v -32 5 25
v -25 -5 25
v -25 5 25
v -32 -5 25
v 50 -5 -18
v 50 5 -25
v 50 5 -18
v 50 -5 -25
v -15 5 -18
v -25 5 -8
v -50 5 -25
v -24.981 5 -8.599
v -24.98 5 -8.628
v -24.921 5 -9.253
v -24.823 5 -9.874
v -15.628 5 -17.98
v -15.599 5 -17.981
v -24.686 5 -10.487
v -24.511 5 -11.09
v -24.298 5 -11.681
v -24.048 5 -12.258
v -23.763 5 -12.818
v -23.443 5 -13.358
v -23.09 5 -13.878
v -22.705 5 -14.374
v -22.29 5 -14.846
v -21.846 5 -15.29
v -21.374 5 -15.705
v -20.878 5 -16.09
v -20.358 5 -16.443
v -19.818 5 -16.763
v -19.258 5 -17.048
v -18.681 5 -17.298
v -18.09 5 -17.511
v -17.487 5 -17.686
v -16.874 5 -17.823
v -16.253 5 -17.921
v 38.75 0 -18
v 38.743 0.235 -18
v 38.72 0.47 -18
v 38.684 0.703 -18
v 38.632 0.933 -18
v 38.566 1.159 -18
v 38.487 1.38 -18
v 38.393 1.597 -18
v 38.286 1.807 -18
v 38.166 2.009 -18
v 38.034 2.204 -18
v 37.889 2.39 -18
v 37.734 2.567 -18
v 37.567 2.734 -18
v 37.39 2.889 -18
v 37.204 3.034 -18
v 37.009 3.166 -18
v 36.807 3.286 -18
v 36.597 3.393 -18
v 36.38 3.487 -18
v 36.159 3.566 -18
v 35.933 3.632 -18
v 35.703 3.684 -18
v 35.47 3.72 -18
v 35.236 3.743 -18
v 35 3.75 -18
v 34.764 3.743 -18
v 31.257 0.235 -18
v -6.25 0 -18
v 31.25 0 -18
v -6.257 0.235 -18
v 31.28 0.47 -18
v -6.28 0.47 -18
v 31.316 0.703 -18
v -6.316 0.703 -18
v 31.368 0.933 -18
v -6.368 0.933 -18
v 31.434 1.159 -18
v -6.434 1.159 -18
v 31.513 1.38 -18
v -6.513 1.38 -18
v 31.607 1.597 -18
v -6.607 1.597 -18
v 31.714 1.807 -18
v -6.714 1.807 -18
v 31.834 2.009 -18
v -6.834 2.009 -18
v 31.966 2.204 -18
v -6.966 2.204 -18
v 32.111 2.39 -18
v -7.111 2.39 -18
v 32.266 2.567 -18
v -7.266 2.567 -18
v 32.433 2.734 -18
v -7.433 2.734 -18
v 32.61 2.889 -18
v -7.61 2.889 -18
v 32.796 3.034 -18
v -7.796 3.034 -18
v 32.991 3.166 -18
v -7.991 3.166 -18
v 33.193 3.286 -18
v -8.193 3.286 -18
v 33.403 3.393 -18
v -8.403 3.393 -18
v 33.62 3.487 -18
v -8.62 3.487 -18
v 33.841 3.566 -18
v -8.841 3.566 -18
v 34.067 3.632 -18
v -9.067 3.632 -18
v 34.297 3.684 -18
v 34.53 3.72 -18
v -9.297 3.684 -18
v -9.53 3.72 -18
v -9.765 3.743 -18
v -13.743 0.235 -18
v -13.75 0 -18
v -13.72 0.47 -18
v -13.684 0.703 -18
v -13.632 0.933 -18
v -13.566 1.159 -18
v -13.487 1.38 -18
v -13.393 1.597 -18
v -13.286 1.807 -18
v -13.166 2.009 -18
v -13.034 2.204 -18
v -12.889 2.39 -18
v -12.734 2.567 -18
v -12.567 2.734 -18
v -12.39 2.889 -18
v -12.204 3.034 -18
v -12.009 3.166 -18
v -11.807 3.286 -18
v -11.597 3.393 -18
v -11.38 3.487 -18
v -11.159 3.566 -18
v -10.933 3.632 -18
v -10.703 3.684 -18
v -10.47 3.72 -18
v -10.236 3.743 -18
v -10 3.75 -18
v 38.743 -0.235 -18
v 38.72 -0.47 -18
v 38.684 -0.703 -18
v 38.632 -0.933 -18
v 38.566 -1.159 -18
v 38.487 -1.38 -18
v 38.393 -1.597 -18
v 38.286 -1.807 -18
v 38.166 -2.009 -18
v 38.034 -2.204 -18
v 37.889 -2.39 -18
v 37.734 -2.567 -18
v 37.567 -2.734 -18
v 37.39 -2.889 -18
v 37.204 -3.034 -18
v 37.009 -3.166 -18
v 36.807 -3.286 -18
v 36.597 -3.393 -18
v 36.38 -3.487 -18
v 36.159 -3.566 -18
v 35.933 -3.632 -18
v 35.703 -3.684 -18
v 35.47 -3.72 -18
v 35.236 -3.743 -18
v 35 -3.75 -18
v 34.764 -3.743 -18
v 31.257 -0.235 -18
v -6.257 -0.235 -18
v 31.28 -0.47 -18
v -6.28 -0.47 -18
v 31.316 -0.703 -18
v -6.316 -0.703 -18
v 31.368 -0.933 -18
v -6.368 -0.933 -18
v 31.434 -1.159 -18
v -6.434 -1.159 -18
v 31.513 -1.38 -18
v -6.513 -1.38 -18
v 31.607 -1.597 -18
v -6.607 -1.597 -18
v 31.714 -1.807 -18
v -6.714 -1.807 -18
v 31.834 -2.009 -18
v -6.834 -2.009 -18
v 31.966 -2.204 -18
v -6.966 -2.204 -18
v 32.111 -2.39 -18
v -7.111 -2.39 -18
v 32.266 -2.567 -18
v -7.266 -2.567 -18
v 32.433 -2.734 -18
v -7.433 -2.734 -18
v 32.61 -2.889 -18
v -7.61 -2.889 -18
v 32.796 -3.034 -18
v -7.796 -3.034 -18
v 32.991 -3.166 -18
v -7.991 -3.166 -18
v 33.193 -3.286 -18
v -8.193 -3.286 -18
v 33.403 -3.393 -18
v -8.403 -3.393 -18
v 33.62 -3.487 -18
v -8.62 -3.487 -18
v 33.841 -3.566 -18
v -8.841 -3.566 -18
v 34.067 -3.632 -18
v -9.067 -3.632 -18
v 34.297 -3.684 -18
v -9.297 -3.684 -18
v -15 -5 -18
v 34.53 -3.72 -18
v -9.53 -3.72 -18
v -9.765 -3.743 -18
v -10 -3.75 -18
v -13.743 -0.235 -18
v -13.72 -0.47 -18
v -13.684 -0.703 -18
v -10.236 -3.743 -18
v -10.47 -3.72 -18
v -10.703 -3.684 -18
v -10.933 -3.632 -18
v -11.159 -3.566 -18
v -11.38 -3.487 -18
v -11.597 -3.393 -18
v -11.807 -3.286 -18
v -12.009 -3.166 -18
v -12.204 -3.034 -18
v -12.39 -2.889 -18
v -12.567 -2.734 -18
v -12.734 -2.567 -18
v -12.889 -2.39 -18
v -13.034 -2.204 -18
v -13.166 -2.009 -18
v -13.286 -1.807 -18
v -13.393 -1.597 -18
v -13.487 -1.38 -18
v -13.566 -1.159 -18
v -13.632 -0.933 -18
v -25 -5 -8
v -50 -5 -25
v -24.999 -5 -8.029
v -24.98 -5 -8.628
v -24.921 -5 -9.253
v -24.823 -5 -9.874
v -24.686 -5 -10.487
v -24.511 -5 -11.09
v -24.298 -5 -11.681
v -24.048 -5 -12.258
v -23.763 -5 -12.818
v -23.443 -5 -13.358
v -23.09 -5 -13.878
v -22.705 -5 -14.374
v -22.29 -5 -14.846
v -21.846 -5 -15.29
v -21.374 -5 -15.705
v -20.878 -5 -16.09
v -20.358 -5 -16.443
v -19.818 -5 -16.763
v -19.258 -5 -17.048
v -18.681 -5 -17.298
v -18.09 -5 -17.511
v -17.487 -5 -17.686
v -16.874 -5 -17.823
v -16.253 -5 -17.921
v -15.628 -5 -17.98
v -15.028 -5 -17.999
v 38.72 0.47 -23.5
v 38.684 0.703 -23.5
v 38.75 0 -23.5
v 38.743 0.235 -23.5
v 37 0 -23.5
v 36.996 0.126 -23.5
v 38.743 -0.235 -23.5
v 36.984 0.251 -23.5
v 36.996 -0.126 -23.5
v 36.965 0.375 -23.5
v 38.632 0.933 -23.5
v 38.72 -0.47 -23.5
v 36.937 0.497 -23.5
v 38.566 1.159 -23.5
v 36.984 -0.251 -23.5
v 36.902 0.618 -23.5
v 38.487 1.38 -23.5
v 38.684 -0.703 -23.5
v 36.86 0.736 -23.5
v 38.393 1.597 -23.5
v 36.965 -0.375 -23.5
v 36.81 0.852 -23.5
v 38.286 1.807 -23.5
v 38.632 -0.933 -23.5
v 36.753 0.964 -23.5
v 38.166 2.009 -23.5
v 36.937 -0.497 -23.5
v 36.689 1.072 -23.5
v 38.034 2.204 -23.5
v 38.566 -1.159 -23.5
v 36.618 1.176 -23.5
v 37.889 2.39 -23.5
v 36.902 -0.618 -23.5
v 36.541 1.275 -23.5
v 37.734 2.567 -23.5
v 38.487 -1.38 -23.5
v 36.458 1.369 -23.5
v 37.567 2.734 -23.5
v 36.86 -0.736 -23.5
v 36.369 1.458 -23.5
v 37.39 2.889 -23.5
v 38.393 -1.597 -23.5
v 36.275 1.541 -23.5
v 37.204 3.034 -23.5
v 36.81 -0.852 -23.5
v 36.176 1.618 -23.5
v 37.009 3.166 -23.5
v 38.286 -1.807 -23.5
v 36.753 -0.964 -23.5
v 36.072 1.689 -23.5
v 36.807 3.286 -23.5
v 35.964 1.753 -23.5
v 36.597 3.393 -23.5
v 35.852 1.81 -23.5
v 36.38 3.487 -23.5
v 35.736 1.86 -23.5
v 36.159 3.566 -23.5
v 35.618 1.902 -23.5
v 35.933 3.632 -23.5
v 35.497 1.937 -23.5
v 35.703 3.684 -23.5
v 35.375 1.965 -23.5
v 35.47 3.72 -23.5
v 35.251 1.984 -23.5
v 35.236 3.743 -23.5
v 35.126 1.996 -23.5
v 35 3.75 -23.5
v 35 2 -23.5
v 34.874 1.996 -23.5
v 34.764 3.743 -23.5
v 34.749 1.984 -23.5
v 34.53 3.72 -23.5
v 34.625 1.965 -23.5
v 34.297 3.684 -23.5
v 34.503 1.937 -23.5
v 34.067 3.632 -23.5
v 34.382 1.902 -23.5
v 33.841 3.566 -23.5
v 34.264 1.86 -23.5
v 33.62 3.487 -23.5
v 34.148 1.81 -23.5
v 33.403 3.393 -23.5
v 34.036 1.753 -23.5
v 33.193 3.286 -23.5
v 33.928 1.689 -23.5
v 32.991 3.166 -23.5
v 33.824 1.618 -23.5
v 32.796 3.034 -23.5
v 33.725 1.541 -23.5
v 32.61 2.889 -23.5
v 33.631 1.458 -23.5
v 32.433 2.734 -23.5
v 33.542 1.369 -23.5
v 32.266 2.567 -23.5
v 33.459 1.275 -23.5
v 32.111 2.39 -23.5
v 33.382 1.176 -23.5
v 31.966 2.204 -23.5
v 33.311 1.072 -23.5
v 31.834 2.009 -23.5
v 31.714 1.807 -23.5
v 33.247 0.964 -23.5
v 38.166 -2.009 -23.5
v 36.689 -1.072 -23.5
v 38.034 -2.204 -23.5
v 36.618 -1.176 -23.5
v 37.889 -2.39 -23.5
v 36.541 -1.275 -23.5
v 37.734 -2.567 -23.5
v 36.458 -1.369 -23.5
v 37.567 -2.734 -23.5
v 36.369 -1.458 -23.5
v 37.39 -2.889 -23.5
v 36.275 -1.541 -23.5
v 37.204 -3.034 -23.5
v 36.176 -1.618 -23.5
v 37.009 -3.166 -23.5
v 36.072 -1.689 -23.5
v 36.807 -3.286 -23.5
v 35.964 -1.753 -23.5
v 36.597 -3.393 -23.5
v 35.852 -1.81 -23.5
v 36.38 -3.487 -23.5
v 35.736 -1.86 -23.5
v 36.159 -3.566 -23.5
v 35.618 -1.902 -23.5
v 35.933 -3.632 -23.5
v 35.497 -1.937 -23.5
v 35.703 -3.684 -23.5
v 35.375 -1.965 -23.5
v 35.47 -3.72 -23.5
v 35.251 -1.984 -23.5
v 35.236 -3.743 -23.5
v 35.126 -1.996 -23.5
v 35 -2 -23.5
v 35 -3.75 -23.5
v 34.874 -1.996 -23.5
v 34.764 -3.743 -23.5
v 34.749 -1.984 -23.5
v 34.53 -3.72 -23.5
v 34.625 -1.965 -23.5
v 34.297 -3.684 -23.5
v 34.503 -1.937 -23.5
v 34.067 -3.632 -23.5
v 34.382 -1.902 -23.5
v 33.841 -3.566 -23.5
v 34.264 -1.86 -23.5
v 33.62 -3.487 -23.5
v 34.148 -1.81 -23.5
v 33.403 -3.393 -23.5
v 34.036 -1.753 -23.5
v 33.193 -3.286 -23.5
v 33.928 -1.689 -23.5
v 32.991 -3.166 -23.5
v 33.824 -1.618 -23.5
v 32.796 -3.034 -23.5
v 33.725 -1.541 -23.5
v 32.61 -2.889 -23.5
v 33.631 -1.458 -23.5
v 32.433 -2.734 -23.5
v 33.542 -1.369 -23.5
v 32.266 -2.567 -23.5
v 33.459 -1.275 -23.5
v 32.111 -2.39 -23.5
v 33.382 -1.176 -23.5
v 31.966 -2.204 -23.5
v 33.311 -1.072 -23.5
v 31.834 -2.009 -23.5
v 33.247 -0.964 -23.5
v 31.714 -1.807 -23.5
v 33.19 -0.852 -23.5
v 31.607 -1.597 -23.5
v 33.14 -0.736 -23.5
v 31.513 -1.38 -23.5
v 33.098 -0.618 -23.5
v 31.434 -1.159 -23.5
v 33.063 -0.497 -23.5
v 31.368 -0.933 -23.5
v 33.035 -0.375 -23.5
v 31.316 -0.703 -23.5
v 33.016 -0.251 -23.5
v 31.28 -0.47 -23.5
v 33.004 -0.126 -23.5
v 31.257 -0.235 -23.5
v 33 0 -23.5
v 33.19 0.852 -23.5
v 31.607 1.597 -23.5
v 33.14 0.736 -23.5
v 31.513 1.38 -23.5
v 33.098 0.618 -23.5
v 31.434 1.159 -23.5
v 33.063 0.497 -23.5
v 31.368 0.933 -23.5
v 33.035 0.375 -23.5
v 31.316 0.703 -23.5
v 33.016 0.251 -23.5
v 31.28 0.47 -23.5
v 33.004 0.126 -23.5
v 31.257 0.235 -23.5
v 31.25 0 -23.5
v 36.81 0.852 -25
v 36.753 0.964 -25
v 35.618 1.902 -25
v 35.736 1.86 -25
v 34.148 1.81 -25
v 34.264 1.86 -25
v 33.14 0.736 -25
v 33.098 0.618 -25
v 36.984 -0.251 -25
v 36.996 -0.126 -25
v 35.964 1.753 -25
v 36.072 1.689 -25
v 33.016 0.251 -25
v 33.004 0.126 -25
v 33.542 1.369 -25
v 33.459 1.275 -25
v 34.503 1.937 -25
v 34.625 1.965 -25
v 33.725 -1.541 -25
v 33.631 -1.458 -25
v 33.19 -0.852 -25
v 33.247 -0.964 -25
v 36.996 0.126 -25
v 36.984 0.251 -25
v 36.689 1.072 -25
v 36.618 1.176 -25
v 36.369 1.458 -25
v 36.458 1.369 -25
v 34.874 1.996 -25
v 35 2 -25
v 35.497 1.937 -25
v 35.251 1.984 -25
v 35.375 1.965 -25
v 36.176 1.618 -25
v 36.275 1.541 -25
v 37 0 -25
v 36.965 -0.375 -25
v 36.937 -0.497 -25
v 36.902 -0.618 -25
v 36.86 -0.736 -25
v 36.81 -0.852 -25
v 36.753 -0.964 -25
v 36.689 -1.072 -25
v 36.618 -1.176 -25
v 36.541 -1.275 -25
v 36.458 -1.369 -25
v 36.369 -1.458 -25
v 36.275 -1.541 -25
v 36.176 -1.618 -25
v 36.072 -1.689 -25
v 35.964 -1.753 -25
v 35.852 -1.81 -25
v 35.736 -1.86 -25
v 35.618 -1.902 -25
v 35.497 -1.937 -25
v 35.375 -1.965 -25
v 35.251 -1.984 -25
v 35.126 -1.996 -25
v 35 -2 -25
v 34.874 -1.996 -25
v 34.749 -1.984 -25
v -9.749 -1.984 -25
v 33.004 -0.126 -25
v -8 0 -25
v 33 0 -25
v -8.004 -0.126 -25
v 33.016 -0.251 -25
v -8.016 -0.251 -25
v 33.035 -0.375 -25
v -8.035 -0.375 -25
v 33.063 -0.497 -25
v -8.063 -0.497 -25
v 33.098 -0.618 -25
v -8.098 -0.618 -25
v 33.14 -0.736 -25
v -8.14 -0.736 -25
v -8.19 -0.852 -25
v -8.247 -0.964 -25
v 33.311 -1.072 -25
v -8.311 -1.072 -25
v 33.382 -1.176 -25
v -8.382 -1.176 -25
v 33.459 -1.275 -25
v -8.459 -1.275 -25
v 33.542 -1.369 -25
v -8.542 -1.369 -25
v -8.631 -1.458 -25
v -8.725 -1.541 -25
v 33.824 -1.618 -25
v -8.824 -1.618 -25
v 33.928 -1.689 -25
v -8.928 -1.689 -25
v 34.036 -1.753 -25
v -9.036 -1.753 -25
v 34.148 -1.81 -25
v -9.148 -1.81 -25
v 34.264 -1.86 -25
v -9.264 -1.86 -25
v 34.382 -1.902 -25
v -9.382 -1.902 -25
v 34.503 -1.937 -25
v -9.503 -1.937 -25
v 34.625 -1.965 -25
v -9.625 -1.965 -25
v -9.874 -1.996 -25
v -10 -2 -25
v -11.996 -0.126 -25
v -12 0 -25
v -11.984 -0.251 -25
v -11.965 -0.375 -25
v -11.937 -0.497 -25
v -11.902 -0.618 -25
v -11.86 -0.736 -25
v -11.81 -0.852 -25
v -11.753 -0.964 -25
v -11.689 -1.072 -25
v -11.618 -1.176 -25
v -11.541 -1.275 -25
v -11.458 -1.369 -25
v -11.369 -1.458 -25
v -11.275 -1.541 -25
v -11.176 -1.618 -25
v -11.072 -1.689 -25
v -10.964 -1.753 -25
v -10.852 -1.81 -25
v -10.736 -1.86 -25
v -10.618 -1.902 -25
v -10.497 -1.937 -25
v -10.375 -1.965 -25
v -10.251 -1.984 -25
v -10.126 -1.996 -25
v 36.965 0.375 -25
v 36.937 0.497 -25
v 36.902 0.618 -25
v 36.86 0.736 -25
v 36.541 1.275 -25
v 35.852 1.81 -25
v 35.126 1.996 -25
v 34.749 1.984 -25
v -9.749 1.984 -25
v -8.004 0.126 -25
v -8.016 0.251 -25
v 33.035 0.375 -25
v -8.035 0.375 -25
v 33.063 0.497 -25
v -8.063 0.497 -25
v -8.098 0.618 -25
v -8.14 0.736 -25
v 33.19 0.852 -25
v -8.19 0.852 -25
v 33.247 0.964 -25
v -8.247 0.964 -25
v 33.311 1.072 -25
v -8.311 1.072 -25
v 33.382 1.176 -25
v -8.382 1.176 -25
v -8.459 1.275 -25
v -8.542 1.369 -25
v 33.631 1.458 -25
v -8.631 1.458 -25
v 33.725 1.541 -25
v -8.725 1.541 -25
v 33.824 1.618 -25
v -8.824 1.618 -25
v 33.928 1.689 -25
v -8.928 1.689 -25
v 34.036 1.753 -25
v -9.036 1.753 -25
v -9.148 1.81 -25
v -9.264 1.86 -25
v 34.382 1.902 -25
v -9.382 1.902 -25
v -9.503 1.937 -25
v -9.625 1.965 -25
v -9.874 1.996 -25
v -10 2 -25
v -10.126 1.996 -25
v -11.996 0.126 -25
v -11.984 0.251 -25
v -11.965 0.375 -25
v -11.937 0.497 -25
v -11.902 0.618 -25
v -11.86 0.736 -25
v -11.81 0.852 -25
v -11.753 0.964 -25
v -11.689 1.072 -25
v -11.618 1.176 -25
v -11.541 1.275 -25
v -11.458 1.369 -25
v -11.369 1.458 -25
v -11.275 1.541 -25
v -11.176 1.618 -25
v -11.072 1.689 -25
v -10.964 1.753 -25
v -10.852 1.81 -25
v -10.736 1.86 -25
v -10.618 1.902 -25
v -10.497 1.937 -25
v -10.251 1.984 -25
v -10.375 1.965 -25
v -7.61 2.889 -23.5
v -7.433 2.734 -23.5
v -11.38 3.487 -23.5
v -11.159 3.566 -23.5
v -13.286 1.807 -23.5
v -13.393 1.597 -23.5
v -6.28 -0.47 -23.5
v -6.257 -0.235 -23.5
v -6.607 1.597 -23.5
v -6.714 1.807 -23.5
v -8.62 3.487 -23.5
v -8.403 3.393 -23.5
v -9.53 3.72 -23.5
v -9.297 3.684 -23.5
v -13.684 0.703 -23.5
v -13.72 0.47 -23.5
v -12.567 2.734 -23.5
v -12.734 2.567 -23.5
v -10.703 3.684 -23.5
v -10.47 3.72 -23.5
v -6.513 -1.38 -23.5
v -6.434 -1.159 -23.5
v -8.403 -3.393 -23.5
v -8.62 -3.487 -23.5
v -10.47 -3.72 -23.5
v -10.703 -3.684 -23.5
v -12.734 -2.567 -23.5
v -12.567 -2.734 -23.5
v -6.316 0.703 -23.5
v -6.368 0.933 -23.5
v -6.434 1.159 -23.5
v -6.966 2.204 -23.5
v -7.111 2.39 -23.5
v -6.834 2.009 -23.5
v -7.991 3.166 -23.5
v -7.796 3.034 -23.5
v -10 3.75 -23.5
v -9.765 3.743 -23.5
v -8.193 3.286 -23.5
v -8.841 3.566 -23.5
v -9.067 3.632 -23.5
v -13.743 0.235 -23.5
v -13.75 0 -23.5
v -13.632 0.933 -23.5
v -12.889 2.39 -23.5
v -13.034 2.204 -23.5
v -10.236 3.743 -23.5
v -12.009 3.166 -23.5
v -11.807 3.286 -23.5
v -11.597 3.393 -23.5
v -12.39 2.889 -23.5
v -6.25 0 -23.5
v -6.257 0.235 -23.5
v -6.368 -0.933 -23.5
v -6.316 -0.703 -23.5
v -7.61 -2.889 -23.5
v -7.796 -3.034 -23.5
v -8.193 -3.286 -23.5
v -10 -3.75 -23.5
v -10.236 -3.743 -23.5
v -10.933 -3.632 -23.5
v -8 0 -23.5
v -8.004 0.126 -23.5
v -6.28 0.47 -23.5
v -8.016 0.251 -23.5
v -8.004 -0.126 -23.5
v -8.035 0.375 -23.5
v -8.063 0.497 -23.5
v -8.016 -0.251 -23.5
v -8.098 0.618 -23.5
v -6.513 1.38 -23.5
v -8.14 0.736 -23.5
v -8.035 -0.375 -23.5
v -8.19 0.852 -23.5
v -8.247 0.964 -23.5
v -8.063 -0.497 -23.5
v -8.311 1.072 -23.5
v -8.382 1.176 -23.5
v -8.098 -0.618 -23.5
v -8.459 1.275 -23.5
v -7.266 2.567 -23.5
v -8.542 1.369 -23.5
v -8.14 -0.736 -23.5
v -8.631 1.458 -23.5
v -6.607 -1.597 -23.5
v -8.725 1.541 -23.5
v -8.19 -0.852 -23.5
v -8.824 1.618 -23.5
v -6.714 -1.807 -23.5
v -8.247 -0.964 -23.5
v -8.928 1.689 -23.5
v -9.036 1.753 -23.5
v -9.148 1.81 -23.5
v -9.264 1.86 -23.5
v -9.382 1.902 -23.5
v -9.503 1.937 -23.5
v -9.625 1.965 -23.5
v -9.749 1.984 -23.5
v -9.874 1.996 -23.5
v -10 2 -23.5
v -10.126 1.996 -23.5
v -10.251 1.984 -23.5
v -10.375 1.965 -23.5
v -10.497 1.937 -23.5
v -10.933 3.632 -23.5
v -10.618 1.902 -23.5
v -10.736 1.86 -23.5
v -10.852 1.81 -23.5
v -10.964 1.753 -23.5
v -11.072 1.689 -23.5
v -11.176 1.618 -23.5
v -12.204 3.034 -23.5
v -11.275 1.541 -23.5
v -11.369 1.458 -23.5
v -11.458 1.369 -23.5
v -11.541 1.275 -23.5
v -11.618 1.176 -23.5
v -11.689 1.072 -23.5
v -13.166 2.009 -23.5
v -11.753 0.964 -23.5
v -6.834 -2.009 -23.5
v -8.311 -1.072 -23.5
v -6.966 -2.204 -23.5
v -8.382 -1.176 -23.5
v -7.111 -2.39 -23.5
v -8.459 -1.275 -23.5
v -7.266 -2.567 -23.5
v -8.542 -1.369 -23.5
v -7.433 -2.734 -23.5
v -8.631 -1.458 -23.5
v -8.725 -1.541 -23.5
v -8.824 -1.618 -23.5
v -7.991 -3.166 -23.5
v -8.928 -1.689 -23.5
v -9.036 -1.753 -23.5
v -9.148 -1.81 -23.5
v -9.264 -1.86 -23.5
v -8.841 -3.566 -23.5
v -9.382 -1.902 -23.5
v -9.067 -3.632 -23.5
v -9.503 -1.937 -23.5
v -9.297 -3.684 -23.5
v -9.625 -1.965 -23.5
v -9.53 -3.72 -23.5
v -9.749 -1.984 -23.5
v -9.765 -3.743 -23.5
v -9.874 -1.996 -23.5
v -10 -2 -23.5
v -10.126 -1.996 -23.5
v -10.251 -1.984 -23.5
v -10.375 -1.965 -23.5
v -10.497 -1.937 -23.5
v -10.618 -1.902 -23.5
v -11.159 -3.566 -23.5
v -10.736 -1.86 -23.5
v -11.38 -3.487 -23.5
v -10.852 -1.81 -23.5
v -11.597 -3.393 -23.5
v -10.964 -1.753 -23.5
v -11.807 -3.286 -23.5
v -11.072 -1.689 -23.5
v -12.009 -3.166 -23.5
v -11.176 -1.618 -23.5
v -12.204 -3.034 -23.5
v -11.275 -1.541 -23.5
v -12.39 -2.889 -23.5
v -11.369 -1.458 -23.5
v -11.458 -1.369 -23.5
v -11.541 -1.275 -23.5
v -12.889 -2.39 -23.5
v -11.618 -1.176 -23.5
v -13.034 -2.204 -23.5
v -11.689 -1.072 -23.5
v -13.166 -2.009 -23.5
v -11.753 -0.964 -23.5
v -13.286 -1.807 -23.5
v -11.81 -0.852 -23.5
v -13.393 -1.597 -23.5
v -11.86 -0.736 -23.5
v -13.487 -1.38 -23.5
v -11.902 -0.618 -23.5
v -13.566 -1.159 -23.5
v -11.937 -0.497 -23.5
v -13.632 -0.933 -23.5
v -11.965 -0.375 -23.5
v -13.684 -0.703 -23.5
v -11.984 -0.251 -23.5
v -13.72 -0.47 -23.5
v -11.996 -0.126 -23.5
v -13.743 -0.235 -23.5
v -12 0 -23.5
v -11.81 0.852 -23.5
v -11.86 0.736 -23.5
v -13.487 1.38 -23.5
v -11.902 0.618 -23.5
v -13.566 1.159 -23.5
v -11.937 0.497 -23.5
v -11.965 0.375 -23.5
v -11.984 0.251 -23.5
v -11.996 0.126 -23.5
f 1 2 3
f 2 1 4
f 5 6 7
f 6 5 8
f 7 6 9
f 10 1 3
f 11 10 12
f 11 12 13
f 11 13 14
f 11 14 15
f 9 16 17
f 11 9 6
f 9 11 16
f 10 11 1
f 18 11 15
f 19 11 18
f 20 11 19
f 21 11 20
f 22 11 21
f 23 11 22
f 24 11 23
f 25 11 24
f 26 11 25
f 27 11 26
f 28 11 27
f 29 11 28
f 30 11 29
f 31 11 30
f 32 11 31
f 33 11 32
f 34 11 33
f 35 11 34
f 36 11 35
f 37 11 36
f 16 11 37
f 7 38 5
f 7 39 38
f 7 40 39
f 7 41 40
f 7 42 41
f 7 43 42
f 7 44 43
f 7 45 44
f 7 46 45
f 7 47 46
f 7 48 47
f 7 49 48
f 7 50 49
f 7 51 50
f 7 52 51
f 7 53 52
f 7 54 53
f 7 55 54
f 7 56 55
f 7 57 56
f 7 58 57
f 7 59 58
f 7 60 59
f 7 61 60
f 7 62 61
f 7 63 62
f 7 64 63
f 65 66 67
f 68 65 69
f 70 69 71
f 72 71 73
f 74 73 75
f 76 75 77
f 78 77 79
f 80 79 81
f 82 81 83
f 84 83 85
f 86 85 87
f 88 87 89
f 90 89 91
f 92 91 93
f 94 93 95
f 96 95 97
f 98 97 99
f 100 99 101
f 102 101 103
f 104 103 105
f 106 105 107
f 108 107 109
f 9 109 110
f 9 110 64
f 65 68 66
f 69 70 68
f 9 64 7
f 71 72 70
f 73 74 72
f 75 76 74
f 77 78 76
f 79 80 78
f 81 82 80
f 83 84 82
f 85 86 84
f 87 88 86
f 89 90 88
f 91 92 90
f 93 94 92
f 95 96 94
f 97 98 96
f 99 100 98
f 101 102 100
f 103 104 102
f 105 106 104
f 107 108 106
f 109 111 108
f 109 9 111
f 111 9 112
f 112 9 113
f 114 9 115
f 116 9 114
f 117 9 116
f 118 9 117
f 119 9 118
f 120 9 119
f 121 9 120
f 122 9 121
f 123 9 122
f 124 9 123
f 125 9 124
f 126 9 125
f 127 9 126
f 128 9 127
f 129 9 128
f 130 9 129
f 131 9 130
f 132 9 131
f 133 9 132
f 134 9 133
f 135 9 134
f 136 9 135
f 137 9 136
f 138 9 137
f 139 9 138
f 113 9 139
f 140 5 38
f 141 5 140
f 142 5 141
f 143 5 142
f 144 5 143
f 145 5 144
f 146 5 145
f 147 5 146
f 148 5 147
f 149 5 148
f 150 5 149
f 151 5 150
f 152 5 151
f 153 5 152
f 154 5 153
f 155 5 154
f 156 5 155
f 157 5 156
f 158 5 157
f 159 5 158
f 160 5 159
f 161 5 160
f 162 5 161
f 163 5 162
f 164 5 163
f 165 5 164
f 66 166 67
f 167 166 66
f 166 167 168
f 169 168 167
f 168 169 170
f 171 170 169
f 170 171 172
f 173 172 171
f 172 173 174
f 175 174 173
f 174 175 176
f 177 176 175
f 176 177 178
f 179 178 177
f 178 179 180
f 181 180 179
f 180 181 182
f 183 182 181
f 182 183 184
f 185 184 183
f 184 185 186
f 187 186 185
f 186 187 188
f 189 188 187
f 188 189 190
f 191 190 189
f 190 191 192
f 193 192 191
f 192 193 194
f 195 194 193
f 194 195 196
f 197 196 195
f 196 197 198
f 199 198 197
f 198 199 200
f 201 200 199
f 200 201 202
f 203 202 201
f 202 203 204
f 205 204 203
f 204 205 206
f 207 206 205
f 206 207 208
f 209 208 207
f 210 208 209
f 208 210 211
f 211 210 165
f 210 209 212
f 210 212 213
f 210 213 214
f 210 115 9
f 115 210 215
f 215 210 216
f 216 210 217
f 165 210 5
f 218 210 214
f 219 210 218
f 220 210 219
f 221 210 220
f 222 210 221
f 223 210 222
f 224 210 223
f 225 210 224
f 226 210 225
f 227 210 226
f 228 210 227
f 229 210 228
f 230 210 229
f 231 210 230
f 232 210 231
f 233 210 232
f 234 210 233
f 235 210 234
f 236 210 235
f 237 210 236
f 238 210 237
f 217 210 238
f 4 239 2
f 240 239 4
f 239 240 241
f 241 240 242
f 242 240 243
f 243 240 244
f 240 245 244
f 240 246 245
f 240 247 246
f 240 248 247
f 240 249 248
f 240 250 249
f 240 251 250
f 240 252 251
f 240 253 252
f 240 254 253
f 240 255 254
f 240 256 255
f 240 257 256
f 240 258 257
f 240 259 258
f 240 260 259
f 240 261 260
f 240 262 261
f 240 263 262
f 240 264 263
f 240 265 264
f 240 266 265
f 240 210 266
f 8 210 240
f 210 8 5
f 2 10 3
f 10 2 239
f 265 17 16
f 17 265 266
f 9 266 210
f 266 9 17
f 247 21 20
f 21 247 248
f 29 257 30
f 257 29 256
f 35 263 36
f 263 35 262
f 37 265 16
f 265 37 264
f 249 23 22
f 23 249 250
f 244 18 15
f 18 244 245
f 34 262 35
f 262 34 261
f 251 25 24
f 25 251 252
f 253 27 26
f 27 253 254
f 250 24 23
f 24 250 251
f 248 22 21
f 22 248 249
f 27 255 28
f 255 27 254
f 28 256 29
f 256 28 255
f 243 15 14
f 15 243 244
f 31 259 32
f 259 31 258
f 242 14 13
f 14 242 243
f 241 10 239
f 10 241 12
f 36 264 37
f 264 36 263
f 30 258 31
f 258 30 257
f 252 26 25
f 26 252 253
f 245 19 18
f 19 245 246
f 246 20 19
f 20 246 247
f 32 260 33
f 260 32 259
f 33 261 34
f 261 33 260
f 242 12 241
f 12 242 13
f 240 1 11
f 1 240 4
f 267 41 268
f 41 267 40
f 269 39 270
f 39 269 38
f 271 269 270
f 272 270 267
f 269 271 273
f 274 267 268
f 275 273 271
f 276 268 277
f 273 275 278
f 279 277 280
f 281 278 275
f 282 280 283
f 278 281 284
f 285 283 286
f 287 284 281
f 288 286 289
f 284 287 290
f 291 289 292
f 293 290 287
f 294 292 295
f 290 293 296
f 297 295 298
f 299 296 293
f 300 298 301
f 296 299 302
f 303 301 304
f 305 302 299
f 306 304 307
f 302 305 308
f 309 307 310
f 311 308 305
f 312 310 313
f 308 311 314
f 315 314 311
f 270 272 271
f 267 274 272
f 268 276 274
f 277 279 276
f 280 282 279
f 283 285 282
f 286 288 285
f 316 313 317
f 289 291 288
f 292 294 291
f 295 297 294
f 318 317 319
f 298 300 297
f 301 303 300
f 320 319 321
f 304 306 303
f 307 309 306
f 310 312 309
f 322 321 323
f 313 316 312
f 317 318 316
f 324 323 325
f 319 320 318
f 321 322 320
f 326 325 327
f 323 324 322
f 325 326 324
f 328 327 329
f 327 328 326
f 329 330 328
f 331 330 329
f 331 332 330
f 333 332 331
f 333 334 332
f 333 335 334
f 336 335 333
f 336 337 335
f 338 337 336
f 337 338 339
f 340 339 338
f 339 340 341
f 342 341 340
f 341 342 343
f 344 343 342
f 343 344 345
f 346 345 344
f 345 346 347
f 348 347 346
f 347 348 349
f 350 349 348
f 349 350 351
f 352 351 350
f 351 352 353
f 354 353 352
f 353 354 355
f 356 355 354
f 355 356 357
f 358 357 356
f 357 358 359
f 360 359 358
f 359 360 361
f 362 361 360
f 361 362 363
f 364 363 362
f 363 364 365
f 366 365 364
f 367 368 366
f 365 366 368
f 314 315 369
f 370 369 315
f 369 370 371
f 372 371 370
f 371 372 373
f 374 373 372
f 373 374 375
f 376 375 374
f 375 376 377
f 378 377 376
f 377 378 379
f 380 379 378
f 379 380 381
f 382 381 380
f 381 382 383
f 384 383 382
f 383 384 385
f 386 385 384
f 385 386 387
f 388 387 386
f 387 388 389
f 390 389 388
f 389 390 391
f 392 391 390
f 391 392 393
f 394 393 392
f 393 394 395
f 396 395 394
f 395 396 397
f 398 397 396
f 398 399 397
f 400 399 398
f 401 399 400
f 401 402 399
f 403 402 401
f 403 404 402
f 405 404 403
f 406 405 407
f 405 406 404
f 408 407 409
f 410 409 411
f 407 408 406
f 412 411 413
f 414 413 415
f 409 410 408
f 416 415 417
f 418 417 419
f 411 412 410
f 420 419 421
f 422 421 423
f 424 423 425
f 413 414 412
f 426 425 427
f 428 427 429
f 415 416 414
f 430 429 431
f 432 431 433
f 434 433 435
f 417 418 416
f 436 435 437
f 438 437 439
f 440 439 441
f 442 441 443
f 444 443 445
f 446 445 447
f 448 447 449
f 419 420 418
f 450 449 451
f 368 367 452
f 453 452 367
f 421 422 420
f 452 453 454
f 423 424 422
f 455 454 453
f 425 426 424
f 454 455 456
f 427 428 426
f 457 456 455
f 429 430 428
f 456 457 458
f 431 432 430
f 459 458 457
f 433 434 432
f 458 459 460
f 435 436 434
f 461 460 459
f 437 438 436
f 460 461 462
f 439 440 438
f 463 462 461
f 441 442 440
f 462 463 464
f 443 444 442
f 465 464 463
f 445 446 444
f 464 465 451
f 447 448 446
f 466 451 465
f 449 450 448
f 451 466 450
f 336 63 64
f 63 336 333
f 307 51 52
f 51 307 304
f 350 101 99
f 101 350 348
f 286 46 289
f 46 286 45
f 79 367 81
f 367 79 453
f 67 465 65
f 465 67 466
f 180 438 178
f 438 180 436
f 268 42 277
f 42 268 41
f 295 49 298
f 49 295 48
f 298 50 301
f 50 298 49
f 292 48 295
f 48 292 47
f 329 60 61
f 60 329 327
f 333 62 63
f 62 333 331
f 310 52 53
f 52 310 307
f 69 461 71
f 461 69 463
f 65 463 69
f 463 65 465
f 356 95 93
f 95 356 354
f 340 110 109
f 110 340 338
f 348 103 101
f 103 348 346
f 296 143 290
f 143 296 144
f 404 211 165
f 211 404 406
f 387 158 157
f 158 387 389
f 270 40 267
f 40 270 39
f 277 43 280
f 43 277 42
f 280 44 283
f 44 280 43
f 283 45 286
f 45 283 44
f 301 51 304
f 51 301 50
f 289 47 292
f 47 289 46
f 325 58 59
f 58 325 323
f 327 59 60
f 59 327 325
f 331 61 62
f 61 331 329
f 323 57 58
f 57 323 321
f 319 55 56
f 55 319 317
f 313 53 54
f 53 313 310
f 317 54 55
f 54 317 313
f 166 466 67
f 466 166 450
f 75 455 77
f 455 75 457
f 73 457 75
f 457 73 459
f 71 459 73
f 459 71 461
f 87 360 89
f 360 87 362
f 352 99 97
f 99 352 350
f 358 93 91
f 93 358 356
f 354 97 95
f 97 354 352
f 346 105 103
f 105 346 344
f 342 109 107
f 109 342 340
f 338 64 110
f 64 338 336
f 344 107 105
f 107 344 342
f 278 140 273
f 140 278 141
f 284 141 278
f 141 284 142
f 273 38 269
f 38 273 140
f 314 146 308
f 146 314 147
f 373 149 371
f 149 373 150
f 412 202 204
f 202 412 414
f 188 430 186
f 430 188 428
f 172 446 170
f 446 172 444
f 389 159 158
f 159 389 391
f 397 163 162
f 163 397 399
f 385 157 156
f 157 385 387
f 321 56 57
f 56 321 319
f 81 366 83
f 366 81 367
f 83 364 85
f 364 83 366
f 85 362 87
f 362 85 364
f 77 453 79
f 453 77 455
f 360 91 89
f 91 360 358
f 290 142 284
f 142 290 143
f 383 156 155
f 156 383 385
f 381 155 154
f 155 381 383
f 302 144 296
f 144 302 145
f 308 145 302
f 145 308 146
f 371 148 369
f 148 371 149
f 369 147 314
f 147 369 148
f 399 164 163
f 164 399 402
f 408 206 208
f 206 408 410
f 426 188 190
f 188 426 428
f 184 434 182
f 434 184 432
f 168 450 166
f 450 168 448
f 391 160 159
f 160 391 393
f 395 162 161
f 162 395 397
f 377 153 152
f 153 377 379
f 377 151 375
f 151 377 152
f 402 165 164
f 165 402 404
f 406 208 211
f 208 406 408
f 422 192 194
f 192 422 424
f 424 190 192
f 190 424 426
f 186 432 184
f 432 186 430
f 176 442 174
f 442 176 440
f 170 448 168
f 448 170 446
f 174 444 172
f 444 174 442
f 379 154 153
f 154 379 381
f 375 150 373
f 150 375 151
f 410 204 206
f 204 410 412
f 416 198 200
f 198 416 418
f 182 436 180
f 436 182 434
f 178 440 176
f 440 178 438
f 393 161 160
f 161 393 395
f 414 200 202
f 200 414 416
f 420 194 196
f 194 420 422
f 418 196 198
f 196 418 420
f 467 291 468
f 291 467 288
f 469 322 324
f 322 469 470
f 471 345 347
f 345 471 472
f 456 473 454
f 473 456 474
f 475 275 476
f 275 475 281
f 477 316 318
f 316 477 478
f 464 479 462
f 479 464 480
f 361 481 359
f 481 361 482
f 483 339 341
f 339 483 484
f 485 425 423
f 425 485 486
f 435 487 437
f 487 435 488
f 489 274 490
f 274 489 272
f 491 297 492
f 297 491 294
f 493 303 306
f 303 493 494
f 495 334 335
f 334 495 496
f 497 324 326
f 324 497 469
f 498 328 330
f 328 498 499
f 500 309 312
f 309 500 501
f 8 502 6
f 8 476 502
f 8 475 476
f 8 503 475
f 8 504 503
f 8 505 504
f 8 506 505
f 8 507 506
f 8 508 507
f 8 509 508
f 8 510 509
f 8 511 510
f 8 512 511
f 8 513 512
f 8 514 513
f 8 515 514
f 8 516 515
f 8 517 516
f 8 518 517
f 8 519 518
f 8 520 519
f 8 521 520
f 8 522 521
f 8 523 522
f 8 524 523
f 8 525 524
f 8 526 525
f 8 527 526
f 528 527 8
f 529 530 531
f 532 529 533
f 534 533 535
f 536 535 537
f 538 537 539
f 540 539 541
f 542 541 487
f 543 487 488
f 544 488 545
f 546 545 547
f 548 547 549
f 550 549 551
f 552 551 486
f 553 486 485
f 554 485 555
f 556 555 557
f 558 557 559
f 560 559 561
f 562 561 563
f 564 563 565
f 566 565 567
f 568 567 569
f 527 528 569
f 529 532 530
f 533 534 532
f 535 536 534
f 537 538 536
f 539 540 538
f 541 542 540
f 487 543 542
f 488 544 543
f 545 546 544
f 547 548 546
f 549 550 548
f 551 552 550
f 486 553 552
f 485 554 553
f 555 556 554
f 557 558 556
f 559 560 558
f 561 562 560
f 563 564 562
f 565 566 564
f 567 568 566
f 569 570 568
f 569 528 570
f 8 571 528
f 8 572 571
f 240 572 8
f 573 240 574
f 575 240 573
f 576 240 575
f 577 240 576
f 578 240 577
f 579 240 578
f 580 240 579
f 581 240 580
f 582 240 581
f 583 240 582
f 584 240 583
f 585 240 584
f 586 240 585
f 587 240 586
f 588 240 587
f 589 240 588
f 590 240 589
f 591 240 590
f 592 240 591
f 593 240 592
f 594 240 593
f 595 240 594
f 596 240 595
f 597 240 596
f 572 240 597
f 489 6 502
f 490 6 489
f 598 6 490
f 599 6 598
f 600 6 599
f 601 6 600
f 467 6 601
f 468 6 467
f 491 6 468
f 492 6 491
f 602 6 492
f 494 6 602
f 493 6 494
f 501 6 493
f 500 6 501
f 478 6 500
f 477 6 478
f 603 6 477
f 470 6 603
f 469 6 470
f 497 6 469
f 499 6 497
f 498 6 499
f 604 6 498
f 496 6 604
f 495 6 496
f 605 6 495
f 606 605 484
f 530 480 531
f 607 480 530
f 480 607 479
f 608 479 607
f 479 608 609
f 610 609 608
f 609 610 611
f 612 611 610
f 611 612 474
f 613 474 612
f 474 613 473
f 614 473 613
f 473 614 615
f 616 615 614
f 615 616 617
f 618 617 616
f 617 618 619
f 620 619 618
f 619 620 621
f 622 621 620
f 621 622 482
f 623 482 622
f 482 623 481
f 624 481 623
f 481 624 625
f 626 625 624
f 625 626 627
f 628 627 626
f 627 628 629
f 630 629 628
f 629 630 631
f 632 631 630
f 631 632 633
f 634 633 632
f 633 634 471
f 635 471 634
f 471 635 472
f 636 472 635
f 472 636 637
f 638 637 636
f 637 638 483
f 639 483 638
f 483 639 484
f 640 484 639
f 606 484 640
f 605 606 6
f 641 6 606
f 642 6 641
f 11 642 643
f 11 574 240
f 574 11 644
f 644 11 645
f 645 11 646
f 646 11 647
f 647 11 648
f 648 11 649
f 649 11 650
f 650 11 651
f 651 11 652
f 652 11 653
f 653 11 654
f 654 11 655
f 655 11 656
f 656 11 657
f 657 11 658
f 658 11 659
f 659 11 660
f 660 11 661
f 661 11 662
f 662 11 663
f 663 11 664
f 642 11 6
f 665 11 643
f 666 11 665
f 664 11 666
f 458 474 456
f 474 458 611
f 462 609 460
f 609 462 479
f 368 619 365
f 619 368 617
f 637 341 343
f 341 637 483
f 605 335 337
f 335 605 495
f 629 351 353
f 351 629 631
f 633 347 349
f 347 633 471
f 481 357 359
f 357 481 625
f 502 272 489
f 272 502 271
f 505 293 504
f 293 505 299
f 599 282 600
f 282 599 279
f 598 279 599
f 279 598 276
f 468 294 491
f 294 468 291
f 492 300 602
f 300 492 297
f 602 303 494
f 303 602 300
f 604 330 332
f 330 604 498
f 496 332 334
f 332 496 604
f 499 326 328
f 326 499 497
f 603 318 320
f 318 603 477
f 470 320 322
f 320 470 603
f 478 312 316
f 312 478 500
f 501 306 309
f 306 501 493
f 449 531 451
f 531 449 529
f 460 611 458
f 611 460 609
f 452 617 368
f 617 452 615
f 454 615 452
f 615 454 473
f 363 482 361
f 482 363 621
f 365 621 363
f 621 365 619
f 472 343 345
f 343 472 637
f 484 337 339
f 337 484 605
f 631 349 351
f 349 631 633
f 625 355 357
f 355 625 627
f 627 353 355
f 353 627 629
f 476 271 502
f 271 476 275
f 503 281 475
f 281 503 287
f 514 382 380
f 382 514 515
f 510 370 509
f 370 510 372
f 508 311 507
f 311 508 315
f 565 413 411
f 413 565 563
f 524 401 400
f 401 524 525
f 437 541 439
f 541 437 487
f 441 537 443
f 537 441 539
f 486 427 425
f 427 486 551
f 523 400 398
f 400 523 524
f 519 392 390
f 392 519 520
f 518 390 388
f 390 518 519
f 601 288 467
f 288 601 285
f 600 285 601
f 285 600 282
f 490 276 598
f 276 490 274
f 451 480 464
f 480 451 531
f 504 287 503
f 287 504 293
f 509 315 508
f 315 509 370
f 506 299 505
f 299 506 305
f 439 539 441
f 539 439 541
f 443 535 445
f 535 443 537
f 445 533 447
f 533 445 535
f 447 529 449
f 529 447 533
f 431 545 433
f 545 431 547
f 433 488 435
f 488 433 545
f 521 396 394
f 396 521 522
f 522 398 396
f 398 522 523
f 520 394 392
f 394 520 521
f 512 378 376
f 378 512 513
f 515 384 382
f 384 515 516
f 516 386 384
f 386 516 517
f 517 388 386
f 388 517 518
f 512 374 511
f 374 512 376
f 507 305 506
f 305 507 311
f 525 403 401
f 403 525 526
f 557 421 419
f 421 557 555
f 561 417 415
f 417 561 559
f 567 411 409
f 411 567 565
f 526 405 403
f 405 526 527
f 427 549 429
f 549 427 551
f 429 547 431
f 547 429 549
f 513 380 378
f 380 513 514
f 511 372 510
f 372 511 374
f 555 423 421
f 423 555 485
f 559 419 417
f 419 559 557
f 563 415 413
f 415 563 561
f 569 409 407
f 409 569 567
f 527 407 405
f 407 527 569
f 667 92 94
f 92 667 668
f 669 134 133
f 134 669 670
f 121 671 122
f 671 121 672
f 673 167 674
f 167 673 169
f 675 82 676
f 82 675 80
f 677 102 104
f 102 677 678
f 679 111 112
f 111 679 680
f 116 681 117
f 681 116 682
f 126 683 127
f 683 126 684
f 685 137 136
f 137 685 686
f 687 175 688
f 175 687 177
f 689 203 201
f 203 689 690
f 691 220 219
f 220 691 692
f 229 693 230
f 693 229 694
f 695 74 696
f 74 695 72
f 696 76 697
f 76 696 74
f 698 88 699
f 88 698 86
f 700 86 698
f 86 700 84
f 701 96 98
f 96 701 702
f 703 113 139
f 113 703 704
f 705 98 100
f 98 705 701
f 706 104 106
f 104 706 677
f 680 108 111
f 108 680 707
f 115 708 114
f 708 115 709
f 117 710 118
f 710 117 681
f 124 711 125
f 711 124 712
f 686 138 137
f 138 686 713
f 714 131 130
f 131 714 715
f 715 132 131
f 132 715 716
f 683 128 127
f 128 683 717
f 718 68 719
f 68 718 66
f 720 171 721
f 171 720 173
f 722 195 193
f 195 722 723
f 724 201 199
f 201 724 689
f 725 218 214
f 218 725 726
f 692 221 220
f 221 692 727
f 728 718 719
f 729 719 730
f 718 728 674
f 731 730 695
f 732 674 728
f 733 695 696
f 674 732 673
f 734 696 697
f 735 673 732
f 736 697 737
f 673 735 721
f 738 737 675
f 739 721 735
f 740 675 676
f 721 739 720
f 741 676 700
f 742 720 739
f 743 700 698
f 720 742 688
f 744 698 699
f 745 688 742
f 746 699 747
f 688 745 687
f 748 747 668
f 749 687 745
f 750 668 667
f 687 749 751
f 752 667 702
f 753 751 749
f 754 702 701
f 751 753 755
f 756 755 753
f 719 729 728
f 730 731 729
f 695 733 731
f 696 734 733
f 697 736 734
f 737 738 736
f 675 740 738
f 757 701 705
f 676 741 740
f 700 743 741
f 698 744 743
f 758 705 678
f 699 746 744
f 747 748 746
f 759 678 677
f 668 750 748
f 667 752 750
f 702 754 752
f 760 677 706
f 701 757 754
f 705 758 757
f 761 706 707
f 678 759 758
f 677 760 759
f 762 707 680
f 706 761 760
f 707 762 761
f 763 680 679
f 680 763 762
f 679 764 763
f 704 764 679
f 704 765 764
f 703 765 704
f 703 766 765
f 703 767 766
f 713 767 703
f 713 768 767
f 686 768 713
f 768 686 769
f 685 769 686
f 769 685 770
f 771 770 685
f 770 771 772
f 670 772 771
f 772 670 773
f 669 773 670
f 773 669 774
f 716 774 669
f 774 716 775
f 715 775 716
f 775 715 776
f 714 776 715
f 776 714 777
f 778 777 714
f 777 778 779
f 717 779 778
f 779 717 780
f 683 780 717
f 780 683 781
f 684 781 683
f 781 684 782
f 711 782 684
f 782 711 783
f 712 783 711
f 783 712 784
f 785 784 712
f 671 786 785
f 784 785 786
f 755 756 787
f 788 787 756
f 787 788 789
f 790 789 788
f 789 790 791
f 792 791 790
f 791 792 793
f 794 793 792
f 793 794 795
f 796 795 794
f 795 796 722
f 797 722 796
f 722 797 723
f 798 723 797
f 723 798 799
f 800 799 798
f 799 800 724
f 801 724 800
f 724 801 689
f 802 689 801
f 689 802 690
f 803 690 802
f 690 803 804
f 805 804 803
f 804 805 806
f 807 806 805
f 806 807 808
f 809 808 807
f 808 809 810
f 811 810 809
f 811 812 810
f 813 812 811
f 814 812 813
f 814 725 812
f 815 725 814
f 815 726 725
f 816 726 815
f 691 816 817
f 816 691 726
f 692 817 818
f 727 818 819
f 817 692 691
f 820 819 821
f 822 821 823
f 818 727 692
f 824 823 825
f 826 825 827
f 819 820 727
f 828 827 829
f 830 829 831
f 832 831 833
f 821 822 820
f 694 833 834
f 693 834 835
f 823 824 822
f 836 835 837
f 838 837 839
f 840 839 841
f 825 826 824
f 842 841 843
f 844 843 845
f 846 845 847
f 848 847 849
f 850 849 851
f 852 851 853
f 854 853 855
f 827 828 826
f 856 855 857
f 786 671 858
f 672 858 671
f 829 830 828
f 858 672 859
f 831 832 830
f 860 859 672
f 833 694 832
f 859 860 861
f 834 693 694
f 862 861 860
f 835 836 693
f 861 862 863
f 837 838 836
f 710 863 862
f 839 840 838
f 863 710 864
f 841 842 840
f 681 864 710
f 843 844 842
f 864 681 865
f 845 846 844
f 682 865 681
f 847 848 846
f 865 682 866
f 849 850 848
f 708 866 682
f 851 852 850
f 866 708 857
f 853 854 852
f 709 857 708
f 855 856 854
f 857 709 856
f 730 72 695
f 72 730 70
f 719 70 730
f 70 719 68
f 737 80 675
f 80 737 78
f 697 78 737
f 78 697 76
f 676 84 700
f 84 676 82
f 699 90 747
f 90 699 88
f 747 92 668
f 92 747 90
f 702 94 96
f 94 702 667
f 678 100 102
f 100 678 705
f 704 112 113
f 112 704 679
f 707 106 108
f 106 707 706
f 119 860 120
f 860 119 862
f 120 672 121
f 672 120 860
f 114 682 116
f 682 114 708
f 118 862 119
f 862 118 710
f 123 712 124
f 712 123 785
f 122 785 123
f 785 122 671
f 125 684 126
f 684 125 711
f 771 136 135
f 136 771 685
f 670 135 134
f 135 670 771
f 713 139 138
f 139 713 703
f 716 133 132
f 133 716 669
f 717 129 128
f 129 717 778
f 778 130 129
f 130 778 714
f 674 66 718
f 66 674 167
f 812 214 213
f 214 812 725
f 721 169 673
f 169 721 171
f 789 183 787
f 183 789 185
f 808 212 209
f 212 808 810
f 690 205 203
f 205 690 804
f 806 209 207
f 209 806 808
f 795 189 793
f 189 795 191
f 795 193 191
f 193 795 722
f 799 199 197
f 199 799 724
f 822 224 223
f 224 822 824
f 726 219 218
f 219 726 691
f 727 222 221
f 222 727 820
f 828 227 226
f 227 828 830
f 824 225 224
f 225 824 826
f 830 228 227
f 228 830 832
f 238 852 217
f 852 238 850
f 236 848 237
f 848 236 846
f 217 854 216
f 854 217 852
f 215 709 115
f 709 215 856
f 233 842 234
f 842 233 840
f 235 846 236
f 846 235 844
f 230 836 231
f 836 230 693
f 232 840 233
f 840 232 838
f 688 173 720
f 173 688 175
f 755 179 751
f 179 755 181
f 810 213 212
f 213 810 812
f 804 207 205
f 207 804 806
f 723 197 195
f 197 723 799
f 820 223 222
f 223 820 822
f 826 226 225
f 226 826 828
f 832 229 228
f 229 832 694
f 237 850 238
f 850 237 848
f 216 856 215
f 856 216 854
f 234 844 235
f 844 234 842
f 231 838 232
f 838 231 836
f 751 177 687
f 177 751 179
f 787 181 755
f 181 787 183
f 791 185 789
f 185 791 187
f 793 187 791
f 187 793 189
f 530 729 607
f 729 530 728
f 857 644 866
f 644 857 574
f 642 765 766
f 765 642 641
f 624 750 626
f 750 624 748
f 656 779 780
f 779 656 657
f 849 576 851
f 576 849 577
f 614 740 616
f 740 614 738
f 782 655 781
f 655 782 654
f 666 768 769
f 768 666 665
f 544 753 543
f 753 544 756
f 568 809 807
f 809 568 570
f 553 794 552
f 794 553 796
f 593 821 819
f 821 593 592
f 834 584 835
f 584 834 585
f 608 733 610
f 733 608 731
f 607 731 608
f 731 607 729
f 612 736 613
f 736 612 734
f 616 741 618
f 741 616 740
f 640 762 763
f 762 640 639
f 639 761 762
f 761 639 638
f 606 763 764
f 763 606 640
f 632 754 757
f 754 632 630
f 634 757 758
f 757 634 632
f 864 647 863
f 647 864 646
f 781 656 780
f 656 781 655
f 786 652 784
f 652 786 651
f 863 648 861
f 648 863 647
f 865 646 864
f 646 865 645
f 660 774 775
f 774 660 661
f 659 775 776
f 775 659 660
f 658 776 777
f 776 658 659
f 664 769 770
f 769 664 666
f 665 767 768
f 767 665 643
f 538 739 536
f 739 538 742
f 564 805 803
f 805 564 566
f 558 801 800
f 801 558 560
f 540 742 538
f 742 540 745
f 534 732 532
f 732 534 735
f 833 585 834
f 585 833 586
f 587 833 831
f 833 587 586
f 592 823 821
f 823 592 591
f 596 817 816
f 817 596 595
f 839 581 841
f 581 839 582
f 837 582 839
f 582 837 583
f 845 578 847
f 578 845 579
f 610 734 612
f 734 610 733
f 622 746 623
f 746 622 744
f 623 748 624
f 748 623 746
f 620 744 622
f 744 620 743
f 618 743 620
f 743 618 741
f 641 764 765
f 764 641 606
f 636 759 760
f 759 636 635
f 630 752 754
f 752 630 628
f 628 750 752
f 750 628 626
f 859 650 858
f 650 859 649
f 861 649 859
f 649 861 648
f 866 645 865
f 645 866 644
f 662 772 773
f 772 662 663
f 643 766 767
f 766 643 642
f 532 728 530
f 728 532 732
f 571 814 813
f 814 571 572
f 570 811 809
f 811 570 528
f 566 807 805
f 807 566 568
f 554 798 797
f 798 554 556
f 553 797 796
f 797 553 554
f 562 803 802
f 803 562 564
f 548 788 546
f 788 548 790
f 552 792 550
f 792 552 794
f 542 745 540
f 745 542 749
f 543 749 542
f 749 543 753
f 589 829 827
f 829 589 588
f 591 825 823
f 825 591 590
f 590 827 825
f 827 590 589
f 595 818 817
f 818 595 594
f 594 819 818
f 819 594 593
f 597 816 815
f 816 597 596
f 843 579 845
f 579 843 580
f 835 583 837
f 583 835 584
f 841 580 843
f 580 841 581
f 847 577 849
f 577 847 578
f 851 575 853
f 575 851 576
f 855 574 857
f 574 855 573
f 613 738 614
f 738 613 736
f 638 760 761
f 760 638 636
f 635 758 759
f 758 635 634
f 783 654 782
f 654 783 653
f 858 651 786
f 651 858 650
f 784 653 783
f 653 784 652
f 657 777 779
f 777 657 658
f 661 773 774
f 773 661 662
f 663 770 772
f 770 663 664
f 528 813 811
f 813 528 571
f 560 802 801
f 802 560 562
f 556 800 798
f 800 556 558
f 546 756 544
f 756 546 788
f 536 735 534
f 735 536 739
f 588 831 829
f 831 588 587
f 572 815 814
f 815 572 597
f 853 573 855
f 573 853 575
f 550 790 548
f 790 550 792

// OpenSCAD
/*
    Titulo: Pie.scad
    Descripcion: Pie de soporte para sujetar al chasis del disco.
    Autor: Matias Micheletto
    Fecha: 12-Jul-2019
    Email: matias.micheletto@uns.edu.ar
    Website: http://www.diec.uns.edu.ar/rts/#/group
*/

$fn=100;

// Dimensiones
L = 100; // Largo del pie
H = 50; // Altura
W = 10; // Ancho
R = 10; // Radio curvatura angulo

// Orificios para tornillos
sep = 45; // Separacion
db = 15; // Distancia al borde del pie


module envolvente(){
    cube([L,W,H], center = true);
}

L2 = L*0.75; H2 = H-7; // Largo y alto a quitar para el ahuecamiento central
w = L-L2-H+H2; s = sqrt(H*H+w*w); // Dimensiones rectangulo diagonal
module rem(){
    union(){ // Recorte interior
        translate([(L-L2+R)/2,0,(H-H2)/2])
            cube([(L2-R),W,H2], center = true);
        
        translate([(L-L2)/2,0,(H-H2+R)/2])
            cube([L2,W,H2-R], center = true);
        
        translate([L/2-L2+R,0,H/2-H2+R])
        rotate([0,90,90])
            cylinder(r = R, h = W+1, center = true);
    }
    
    // Recorte diagonal
    translate([-L/2,-W/2,-H/2])
    rotate([0,-asin(H/s),0])
        cube([s,W,w*H/s]);
}

Rh1 = 3.75; // Radio para cabeza del tornillo
Rh2 = 2; // Radio para rosca del tornillo
ph = 1.5; // Espesor de la zona de ajuste
module holes(){
    
    translate([L/2-db,0,-H2/2+ph/2])
        cylinder(r = Rh1, h = H-H2-ph, center = true);
    translate([L/2-db,0,-H2/2])
        cylinder(r = Rh2, h = H-H2, center = true);
    
    translate([L/2-db-sep,0,-H2/2+ph/2])
        cylinder(r = Rh1, h = H-H2-ph, center = true);
    translate([L/2-db-sep,0,-H2/2])
        cylinder(r = Rh2, h = H-H2, center = true);
}

//rotate([0,180+asin(H/s),0]) // Posicionar verticalmente (para visualizar)
difference(){
    envolvente();
    rem();
    holes();
}
